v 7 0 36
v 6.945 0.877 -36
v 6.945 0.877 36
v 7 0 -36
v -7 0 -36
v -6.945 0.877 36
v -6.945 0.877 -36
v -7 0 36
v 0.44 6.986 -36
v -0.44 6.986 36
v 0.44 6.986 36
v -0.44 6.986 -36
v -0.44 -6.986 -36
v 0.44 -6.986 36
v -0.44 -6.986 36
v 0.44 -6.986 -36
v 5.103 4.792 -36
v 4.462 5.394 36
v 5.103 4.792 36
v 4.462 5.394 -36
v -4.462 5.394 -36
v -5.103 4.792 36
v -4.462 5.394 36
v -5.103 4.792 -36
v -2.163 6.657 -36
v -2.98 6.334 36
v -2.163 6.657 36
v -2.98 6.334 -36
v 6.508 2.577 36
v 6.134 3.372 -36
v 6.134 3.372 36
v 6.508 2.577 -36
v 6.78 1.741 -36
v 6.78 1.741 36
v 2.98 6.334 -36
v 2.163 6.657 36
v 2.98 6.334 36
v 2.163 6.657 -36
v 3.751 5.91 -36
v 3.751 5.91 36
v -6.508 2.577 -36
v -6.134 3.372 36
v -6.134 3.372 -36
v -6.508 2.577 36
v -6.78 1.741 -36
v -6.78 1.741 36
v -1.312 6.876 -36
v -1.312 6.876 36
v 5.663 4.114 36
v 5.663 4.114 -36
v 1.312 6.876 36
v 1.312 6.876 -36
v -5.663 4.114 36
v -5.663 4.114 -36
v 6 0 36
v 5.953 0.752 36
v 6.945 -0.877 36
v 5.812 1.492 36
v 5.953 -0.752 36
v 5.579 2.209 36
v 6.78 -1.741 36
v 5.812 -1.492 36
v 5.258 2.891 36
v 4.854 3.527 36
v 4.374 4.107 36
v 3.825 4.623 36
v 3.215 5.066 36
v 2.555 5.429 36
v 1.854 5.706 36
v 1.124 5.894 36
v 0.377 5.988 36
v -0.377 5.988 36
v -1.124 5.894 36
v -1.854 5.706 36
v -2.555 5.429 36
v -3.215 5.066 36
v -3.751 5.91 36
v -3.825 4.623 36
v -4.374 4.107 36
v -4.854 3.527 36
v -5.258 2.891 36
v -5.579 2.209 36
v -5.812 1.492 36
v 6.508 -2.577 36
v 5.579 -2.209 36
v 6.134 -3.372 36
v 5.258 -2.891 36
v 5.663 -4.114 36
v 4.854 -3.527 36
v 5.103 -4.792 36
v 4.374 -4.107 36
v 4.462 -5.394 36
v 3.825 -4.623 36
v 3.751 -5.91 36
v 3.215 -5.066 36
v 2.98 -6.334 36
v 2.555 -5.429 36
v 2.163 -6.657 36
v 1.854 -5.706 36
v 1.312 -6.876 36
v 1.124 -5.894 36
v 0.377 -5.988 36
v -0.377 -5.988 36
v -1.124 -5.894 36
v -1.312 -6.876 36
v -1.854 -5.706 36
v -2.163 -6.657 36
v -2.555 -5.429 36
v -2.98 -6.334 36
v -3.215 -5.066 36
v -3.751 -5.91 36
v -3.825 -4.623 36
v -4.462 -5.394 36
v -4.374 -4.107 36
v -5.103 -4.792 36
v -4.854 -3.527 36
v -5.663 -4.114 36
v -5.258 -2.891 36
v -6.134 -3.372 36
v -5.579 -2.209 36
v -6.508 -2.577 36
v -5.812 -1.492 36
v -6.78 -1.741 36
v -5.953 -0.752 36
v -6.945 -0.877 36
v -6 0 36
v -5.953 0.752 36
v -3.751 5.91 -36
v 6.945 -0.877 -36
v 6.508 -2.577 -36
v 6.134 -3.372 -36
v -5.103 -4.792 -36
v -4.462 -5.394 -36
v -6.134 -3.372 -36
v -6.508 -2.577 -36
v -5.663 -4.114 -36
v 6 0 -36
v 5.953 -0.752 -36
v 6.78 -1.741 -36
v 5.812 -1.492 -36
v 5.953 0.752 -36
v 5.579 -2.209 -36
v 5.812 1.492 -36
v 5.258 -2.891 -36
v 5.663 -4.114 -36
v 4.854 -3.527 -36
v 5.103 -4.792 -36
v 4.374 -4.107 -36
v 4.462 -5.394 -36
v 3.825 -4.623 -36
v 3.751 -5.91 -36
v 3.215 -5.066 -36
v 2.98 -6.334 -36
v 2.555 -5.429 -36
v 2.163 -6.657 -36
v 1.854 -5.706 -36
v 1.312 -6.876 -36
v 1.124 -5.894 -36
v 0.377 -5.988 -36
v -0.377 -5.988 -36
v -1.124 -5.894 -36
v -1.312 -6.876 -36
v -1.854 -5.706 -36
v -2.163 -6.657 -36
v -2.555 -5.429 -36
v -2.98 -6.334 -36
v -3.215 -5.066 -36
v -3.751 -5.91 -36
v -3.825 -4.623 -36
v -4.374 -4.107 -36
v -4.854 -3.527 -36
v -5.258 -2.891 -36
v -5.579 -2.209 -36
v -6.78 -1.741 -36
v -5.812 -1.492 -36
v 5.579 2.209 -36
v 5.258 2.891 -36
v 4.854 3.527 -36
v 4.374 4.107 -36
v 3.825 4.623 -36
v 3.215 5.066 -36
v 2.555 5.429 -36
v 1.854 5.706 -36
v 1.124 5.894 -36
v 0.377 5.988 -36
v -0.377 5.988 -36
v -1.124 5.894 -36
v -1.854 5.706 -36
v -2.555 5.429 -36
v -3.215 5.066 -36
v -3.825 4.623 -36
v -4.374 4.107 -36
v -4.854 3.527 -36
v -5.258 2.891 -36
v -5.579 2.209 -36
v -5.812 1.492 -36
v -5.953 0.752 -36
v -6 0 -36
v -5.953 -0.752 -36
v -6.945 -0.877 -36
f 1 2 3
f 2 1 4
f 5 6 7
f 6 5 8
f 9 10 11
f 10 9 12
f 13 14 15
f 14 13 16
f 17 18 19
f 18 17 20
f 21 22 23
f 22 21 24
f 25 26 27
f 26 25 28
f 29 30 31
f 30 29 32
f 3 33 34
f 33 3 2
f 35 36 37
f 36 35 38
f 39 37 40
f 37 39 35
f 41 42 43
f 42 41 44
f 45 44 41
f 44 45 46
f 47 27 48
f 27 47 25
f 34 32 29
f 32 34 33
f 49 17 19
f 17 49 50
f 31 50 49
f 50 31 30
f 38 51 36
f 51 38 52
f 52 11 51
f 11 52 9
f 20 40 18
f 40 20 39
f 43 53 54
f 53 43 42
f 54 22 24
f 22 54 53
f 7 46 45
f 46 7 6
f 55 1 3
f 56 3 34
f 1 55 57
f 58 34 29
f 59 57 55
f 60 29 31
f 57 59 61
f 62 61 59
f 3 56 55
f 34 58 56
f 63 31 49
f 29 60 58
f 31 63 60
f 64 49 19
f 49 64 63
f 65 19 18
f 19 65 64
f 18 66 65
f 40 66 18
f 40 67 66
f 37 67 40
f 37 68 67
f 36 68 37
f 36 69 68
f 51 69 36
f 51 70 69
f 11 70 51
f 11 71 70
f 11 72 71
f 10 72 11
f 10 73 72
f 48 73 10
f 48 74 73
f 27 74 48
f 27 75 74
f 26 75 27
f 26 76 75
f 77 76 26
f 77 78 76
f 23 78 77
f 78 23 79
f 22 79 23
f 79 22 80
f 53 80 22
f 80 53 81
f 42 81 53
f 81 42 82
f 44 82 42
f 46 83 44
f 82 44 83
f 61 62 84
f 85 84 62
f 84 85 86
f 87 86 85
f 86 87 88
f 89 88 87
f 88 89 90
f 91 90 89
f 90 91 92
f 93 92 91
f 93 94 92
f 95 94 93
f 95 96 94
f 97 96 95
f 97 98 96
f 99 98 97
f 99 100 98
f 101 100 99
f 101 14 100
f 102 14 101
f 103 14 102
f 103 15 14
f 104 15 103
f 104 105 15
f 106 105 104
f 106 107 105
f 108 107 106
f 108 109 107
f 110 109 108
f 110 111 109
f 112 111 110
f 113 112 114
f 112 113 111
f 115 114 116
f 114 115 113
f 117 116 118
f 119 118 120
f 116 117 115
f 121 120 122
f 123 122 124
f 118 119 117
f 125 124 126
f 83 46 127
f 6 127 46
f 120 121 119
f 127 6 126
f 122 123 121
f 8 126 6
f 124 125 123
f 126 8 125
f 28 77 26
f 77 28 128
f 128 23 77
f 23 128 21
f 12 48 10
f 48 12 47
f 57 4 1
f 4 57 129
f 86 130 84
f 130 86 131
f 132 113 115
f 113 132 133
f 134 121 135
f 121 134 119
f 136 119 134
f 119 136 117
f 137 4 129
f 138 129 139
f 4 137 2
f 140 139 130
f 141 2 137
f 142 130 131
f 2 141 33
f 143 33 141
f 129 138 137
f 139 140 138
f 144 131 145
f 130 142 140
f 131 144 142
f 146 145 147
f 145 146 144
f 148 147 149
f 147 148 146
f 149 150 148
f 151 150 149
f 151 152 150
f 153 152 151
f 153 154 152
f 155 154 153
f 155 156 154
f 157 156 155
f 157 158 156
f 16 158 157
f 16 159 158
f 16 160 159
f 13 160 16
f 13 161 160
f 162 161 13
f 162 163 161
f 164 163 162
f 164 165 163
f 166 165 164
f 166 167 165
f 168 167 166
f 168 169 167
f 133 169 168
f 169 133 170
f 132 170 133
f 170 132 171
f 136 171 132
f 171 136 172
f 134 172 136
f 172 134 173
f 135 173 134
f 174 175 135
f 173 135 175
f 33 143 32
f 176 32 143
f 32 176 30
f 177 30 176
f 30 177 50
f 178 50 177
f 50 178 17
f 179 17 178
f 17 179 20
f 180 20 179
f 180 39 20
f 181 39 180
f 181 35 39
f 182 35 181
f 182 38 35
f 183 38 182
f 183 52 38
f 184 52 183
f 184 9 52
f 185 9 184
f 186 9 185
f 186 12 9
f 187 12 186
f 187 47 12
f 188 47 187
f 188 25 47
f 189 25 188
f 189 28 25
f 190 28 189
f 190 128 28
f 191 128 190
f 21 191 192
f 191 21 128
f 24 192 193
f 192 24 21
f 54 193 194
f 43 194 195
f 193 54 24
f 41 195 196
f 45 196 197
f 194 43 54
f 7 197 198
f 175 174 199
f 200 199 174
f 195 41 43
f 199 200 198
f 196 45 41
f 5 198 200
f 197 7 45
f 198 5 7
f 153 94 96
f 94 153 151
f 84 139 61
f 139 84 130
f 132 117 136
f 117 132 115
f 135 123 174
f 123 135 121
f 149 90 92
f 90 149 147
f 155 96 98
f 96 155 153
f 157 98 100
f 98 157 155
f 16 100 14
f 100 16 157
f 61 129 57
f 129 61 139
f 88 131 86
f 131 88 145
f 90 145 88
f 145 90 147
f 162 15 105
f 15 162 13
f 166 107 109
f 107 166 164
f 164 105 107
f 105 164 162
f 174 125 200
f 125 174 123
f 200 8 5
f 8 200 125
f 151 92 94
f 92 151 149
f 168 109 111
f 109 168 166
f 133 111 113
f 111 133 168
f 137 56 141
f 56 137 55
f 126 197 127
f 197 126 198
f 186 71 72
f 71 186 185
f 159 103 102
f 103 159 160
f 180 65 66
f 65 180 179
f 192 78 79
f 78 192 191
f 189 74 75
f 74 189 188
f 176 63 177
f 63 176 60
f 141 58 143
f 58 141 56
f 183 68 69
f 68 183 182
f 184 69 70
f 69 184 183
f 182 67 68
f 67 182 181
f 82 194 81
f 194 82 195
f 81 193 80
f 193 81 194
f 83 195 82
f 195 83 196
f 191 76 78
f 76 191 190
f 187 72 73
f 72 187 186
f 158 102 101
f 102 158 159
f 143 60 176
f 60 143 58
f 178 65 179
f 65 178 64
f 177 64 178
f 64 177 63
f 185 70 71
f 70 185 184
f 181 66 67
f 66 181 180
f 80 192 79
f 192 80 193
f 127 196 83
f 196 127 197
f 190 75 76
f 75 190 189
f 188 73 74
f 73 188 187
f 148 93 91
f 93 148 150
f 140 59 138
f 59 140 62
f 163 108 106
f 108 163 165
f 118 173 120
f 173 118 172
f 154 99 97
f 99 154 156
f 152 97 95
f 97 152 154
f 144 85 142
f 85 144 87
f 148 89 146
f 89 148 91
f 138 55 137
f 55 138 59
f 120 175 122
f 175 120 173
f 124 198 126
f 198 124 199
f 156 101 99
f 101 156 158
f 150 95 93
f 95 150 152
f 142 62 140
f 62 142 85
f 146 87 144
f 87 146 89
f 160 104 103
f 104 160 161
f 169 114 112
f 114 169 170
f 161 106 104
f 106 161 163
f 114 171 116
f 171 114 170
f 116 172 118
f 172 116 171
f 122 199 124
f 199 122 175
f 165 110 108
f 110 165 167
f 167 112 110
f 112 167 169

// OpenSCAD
$fn = 50;


difference() {
	union() {
		translate(v = [0, 0, -36.0000000000]) {
			cylinder(h = 72, r = 7.0000000000);
		}
	}
	union() {
		translate(v = [0, 0, -100.0000000000]) {
			cylinder(h = 200, r = 6);
		}
	}
}
